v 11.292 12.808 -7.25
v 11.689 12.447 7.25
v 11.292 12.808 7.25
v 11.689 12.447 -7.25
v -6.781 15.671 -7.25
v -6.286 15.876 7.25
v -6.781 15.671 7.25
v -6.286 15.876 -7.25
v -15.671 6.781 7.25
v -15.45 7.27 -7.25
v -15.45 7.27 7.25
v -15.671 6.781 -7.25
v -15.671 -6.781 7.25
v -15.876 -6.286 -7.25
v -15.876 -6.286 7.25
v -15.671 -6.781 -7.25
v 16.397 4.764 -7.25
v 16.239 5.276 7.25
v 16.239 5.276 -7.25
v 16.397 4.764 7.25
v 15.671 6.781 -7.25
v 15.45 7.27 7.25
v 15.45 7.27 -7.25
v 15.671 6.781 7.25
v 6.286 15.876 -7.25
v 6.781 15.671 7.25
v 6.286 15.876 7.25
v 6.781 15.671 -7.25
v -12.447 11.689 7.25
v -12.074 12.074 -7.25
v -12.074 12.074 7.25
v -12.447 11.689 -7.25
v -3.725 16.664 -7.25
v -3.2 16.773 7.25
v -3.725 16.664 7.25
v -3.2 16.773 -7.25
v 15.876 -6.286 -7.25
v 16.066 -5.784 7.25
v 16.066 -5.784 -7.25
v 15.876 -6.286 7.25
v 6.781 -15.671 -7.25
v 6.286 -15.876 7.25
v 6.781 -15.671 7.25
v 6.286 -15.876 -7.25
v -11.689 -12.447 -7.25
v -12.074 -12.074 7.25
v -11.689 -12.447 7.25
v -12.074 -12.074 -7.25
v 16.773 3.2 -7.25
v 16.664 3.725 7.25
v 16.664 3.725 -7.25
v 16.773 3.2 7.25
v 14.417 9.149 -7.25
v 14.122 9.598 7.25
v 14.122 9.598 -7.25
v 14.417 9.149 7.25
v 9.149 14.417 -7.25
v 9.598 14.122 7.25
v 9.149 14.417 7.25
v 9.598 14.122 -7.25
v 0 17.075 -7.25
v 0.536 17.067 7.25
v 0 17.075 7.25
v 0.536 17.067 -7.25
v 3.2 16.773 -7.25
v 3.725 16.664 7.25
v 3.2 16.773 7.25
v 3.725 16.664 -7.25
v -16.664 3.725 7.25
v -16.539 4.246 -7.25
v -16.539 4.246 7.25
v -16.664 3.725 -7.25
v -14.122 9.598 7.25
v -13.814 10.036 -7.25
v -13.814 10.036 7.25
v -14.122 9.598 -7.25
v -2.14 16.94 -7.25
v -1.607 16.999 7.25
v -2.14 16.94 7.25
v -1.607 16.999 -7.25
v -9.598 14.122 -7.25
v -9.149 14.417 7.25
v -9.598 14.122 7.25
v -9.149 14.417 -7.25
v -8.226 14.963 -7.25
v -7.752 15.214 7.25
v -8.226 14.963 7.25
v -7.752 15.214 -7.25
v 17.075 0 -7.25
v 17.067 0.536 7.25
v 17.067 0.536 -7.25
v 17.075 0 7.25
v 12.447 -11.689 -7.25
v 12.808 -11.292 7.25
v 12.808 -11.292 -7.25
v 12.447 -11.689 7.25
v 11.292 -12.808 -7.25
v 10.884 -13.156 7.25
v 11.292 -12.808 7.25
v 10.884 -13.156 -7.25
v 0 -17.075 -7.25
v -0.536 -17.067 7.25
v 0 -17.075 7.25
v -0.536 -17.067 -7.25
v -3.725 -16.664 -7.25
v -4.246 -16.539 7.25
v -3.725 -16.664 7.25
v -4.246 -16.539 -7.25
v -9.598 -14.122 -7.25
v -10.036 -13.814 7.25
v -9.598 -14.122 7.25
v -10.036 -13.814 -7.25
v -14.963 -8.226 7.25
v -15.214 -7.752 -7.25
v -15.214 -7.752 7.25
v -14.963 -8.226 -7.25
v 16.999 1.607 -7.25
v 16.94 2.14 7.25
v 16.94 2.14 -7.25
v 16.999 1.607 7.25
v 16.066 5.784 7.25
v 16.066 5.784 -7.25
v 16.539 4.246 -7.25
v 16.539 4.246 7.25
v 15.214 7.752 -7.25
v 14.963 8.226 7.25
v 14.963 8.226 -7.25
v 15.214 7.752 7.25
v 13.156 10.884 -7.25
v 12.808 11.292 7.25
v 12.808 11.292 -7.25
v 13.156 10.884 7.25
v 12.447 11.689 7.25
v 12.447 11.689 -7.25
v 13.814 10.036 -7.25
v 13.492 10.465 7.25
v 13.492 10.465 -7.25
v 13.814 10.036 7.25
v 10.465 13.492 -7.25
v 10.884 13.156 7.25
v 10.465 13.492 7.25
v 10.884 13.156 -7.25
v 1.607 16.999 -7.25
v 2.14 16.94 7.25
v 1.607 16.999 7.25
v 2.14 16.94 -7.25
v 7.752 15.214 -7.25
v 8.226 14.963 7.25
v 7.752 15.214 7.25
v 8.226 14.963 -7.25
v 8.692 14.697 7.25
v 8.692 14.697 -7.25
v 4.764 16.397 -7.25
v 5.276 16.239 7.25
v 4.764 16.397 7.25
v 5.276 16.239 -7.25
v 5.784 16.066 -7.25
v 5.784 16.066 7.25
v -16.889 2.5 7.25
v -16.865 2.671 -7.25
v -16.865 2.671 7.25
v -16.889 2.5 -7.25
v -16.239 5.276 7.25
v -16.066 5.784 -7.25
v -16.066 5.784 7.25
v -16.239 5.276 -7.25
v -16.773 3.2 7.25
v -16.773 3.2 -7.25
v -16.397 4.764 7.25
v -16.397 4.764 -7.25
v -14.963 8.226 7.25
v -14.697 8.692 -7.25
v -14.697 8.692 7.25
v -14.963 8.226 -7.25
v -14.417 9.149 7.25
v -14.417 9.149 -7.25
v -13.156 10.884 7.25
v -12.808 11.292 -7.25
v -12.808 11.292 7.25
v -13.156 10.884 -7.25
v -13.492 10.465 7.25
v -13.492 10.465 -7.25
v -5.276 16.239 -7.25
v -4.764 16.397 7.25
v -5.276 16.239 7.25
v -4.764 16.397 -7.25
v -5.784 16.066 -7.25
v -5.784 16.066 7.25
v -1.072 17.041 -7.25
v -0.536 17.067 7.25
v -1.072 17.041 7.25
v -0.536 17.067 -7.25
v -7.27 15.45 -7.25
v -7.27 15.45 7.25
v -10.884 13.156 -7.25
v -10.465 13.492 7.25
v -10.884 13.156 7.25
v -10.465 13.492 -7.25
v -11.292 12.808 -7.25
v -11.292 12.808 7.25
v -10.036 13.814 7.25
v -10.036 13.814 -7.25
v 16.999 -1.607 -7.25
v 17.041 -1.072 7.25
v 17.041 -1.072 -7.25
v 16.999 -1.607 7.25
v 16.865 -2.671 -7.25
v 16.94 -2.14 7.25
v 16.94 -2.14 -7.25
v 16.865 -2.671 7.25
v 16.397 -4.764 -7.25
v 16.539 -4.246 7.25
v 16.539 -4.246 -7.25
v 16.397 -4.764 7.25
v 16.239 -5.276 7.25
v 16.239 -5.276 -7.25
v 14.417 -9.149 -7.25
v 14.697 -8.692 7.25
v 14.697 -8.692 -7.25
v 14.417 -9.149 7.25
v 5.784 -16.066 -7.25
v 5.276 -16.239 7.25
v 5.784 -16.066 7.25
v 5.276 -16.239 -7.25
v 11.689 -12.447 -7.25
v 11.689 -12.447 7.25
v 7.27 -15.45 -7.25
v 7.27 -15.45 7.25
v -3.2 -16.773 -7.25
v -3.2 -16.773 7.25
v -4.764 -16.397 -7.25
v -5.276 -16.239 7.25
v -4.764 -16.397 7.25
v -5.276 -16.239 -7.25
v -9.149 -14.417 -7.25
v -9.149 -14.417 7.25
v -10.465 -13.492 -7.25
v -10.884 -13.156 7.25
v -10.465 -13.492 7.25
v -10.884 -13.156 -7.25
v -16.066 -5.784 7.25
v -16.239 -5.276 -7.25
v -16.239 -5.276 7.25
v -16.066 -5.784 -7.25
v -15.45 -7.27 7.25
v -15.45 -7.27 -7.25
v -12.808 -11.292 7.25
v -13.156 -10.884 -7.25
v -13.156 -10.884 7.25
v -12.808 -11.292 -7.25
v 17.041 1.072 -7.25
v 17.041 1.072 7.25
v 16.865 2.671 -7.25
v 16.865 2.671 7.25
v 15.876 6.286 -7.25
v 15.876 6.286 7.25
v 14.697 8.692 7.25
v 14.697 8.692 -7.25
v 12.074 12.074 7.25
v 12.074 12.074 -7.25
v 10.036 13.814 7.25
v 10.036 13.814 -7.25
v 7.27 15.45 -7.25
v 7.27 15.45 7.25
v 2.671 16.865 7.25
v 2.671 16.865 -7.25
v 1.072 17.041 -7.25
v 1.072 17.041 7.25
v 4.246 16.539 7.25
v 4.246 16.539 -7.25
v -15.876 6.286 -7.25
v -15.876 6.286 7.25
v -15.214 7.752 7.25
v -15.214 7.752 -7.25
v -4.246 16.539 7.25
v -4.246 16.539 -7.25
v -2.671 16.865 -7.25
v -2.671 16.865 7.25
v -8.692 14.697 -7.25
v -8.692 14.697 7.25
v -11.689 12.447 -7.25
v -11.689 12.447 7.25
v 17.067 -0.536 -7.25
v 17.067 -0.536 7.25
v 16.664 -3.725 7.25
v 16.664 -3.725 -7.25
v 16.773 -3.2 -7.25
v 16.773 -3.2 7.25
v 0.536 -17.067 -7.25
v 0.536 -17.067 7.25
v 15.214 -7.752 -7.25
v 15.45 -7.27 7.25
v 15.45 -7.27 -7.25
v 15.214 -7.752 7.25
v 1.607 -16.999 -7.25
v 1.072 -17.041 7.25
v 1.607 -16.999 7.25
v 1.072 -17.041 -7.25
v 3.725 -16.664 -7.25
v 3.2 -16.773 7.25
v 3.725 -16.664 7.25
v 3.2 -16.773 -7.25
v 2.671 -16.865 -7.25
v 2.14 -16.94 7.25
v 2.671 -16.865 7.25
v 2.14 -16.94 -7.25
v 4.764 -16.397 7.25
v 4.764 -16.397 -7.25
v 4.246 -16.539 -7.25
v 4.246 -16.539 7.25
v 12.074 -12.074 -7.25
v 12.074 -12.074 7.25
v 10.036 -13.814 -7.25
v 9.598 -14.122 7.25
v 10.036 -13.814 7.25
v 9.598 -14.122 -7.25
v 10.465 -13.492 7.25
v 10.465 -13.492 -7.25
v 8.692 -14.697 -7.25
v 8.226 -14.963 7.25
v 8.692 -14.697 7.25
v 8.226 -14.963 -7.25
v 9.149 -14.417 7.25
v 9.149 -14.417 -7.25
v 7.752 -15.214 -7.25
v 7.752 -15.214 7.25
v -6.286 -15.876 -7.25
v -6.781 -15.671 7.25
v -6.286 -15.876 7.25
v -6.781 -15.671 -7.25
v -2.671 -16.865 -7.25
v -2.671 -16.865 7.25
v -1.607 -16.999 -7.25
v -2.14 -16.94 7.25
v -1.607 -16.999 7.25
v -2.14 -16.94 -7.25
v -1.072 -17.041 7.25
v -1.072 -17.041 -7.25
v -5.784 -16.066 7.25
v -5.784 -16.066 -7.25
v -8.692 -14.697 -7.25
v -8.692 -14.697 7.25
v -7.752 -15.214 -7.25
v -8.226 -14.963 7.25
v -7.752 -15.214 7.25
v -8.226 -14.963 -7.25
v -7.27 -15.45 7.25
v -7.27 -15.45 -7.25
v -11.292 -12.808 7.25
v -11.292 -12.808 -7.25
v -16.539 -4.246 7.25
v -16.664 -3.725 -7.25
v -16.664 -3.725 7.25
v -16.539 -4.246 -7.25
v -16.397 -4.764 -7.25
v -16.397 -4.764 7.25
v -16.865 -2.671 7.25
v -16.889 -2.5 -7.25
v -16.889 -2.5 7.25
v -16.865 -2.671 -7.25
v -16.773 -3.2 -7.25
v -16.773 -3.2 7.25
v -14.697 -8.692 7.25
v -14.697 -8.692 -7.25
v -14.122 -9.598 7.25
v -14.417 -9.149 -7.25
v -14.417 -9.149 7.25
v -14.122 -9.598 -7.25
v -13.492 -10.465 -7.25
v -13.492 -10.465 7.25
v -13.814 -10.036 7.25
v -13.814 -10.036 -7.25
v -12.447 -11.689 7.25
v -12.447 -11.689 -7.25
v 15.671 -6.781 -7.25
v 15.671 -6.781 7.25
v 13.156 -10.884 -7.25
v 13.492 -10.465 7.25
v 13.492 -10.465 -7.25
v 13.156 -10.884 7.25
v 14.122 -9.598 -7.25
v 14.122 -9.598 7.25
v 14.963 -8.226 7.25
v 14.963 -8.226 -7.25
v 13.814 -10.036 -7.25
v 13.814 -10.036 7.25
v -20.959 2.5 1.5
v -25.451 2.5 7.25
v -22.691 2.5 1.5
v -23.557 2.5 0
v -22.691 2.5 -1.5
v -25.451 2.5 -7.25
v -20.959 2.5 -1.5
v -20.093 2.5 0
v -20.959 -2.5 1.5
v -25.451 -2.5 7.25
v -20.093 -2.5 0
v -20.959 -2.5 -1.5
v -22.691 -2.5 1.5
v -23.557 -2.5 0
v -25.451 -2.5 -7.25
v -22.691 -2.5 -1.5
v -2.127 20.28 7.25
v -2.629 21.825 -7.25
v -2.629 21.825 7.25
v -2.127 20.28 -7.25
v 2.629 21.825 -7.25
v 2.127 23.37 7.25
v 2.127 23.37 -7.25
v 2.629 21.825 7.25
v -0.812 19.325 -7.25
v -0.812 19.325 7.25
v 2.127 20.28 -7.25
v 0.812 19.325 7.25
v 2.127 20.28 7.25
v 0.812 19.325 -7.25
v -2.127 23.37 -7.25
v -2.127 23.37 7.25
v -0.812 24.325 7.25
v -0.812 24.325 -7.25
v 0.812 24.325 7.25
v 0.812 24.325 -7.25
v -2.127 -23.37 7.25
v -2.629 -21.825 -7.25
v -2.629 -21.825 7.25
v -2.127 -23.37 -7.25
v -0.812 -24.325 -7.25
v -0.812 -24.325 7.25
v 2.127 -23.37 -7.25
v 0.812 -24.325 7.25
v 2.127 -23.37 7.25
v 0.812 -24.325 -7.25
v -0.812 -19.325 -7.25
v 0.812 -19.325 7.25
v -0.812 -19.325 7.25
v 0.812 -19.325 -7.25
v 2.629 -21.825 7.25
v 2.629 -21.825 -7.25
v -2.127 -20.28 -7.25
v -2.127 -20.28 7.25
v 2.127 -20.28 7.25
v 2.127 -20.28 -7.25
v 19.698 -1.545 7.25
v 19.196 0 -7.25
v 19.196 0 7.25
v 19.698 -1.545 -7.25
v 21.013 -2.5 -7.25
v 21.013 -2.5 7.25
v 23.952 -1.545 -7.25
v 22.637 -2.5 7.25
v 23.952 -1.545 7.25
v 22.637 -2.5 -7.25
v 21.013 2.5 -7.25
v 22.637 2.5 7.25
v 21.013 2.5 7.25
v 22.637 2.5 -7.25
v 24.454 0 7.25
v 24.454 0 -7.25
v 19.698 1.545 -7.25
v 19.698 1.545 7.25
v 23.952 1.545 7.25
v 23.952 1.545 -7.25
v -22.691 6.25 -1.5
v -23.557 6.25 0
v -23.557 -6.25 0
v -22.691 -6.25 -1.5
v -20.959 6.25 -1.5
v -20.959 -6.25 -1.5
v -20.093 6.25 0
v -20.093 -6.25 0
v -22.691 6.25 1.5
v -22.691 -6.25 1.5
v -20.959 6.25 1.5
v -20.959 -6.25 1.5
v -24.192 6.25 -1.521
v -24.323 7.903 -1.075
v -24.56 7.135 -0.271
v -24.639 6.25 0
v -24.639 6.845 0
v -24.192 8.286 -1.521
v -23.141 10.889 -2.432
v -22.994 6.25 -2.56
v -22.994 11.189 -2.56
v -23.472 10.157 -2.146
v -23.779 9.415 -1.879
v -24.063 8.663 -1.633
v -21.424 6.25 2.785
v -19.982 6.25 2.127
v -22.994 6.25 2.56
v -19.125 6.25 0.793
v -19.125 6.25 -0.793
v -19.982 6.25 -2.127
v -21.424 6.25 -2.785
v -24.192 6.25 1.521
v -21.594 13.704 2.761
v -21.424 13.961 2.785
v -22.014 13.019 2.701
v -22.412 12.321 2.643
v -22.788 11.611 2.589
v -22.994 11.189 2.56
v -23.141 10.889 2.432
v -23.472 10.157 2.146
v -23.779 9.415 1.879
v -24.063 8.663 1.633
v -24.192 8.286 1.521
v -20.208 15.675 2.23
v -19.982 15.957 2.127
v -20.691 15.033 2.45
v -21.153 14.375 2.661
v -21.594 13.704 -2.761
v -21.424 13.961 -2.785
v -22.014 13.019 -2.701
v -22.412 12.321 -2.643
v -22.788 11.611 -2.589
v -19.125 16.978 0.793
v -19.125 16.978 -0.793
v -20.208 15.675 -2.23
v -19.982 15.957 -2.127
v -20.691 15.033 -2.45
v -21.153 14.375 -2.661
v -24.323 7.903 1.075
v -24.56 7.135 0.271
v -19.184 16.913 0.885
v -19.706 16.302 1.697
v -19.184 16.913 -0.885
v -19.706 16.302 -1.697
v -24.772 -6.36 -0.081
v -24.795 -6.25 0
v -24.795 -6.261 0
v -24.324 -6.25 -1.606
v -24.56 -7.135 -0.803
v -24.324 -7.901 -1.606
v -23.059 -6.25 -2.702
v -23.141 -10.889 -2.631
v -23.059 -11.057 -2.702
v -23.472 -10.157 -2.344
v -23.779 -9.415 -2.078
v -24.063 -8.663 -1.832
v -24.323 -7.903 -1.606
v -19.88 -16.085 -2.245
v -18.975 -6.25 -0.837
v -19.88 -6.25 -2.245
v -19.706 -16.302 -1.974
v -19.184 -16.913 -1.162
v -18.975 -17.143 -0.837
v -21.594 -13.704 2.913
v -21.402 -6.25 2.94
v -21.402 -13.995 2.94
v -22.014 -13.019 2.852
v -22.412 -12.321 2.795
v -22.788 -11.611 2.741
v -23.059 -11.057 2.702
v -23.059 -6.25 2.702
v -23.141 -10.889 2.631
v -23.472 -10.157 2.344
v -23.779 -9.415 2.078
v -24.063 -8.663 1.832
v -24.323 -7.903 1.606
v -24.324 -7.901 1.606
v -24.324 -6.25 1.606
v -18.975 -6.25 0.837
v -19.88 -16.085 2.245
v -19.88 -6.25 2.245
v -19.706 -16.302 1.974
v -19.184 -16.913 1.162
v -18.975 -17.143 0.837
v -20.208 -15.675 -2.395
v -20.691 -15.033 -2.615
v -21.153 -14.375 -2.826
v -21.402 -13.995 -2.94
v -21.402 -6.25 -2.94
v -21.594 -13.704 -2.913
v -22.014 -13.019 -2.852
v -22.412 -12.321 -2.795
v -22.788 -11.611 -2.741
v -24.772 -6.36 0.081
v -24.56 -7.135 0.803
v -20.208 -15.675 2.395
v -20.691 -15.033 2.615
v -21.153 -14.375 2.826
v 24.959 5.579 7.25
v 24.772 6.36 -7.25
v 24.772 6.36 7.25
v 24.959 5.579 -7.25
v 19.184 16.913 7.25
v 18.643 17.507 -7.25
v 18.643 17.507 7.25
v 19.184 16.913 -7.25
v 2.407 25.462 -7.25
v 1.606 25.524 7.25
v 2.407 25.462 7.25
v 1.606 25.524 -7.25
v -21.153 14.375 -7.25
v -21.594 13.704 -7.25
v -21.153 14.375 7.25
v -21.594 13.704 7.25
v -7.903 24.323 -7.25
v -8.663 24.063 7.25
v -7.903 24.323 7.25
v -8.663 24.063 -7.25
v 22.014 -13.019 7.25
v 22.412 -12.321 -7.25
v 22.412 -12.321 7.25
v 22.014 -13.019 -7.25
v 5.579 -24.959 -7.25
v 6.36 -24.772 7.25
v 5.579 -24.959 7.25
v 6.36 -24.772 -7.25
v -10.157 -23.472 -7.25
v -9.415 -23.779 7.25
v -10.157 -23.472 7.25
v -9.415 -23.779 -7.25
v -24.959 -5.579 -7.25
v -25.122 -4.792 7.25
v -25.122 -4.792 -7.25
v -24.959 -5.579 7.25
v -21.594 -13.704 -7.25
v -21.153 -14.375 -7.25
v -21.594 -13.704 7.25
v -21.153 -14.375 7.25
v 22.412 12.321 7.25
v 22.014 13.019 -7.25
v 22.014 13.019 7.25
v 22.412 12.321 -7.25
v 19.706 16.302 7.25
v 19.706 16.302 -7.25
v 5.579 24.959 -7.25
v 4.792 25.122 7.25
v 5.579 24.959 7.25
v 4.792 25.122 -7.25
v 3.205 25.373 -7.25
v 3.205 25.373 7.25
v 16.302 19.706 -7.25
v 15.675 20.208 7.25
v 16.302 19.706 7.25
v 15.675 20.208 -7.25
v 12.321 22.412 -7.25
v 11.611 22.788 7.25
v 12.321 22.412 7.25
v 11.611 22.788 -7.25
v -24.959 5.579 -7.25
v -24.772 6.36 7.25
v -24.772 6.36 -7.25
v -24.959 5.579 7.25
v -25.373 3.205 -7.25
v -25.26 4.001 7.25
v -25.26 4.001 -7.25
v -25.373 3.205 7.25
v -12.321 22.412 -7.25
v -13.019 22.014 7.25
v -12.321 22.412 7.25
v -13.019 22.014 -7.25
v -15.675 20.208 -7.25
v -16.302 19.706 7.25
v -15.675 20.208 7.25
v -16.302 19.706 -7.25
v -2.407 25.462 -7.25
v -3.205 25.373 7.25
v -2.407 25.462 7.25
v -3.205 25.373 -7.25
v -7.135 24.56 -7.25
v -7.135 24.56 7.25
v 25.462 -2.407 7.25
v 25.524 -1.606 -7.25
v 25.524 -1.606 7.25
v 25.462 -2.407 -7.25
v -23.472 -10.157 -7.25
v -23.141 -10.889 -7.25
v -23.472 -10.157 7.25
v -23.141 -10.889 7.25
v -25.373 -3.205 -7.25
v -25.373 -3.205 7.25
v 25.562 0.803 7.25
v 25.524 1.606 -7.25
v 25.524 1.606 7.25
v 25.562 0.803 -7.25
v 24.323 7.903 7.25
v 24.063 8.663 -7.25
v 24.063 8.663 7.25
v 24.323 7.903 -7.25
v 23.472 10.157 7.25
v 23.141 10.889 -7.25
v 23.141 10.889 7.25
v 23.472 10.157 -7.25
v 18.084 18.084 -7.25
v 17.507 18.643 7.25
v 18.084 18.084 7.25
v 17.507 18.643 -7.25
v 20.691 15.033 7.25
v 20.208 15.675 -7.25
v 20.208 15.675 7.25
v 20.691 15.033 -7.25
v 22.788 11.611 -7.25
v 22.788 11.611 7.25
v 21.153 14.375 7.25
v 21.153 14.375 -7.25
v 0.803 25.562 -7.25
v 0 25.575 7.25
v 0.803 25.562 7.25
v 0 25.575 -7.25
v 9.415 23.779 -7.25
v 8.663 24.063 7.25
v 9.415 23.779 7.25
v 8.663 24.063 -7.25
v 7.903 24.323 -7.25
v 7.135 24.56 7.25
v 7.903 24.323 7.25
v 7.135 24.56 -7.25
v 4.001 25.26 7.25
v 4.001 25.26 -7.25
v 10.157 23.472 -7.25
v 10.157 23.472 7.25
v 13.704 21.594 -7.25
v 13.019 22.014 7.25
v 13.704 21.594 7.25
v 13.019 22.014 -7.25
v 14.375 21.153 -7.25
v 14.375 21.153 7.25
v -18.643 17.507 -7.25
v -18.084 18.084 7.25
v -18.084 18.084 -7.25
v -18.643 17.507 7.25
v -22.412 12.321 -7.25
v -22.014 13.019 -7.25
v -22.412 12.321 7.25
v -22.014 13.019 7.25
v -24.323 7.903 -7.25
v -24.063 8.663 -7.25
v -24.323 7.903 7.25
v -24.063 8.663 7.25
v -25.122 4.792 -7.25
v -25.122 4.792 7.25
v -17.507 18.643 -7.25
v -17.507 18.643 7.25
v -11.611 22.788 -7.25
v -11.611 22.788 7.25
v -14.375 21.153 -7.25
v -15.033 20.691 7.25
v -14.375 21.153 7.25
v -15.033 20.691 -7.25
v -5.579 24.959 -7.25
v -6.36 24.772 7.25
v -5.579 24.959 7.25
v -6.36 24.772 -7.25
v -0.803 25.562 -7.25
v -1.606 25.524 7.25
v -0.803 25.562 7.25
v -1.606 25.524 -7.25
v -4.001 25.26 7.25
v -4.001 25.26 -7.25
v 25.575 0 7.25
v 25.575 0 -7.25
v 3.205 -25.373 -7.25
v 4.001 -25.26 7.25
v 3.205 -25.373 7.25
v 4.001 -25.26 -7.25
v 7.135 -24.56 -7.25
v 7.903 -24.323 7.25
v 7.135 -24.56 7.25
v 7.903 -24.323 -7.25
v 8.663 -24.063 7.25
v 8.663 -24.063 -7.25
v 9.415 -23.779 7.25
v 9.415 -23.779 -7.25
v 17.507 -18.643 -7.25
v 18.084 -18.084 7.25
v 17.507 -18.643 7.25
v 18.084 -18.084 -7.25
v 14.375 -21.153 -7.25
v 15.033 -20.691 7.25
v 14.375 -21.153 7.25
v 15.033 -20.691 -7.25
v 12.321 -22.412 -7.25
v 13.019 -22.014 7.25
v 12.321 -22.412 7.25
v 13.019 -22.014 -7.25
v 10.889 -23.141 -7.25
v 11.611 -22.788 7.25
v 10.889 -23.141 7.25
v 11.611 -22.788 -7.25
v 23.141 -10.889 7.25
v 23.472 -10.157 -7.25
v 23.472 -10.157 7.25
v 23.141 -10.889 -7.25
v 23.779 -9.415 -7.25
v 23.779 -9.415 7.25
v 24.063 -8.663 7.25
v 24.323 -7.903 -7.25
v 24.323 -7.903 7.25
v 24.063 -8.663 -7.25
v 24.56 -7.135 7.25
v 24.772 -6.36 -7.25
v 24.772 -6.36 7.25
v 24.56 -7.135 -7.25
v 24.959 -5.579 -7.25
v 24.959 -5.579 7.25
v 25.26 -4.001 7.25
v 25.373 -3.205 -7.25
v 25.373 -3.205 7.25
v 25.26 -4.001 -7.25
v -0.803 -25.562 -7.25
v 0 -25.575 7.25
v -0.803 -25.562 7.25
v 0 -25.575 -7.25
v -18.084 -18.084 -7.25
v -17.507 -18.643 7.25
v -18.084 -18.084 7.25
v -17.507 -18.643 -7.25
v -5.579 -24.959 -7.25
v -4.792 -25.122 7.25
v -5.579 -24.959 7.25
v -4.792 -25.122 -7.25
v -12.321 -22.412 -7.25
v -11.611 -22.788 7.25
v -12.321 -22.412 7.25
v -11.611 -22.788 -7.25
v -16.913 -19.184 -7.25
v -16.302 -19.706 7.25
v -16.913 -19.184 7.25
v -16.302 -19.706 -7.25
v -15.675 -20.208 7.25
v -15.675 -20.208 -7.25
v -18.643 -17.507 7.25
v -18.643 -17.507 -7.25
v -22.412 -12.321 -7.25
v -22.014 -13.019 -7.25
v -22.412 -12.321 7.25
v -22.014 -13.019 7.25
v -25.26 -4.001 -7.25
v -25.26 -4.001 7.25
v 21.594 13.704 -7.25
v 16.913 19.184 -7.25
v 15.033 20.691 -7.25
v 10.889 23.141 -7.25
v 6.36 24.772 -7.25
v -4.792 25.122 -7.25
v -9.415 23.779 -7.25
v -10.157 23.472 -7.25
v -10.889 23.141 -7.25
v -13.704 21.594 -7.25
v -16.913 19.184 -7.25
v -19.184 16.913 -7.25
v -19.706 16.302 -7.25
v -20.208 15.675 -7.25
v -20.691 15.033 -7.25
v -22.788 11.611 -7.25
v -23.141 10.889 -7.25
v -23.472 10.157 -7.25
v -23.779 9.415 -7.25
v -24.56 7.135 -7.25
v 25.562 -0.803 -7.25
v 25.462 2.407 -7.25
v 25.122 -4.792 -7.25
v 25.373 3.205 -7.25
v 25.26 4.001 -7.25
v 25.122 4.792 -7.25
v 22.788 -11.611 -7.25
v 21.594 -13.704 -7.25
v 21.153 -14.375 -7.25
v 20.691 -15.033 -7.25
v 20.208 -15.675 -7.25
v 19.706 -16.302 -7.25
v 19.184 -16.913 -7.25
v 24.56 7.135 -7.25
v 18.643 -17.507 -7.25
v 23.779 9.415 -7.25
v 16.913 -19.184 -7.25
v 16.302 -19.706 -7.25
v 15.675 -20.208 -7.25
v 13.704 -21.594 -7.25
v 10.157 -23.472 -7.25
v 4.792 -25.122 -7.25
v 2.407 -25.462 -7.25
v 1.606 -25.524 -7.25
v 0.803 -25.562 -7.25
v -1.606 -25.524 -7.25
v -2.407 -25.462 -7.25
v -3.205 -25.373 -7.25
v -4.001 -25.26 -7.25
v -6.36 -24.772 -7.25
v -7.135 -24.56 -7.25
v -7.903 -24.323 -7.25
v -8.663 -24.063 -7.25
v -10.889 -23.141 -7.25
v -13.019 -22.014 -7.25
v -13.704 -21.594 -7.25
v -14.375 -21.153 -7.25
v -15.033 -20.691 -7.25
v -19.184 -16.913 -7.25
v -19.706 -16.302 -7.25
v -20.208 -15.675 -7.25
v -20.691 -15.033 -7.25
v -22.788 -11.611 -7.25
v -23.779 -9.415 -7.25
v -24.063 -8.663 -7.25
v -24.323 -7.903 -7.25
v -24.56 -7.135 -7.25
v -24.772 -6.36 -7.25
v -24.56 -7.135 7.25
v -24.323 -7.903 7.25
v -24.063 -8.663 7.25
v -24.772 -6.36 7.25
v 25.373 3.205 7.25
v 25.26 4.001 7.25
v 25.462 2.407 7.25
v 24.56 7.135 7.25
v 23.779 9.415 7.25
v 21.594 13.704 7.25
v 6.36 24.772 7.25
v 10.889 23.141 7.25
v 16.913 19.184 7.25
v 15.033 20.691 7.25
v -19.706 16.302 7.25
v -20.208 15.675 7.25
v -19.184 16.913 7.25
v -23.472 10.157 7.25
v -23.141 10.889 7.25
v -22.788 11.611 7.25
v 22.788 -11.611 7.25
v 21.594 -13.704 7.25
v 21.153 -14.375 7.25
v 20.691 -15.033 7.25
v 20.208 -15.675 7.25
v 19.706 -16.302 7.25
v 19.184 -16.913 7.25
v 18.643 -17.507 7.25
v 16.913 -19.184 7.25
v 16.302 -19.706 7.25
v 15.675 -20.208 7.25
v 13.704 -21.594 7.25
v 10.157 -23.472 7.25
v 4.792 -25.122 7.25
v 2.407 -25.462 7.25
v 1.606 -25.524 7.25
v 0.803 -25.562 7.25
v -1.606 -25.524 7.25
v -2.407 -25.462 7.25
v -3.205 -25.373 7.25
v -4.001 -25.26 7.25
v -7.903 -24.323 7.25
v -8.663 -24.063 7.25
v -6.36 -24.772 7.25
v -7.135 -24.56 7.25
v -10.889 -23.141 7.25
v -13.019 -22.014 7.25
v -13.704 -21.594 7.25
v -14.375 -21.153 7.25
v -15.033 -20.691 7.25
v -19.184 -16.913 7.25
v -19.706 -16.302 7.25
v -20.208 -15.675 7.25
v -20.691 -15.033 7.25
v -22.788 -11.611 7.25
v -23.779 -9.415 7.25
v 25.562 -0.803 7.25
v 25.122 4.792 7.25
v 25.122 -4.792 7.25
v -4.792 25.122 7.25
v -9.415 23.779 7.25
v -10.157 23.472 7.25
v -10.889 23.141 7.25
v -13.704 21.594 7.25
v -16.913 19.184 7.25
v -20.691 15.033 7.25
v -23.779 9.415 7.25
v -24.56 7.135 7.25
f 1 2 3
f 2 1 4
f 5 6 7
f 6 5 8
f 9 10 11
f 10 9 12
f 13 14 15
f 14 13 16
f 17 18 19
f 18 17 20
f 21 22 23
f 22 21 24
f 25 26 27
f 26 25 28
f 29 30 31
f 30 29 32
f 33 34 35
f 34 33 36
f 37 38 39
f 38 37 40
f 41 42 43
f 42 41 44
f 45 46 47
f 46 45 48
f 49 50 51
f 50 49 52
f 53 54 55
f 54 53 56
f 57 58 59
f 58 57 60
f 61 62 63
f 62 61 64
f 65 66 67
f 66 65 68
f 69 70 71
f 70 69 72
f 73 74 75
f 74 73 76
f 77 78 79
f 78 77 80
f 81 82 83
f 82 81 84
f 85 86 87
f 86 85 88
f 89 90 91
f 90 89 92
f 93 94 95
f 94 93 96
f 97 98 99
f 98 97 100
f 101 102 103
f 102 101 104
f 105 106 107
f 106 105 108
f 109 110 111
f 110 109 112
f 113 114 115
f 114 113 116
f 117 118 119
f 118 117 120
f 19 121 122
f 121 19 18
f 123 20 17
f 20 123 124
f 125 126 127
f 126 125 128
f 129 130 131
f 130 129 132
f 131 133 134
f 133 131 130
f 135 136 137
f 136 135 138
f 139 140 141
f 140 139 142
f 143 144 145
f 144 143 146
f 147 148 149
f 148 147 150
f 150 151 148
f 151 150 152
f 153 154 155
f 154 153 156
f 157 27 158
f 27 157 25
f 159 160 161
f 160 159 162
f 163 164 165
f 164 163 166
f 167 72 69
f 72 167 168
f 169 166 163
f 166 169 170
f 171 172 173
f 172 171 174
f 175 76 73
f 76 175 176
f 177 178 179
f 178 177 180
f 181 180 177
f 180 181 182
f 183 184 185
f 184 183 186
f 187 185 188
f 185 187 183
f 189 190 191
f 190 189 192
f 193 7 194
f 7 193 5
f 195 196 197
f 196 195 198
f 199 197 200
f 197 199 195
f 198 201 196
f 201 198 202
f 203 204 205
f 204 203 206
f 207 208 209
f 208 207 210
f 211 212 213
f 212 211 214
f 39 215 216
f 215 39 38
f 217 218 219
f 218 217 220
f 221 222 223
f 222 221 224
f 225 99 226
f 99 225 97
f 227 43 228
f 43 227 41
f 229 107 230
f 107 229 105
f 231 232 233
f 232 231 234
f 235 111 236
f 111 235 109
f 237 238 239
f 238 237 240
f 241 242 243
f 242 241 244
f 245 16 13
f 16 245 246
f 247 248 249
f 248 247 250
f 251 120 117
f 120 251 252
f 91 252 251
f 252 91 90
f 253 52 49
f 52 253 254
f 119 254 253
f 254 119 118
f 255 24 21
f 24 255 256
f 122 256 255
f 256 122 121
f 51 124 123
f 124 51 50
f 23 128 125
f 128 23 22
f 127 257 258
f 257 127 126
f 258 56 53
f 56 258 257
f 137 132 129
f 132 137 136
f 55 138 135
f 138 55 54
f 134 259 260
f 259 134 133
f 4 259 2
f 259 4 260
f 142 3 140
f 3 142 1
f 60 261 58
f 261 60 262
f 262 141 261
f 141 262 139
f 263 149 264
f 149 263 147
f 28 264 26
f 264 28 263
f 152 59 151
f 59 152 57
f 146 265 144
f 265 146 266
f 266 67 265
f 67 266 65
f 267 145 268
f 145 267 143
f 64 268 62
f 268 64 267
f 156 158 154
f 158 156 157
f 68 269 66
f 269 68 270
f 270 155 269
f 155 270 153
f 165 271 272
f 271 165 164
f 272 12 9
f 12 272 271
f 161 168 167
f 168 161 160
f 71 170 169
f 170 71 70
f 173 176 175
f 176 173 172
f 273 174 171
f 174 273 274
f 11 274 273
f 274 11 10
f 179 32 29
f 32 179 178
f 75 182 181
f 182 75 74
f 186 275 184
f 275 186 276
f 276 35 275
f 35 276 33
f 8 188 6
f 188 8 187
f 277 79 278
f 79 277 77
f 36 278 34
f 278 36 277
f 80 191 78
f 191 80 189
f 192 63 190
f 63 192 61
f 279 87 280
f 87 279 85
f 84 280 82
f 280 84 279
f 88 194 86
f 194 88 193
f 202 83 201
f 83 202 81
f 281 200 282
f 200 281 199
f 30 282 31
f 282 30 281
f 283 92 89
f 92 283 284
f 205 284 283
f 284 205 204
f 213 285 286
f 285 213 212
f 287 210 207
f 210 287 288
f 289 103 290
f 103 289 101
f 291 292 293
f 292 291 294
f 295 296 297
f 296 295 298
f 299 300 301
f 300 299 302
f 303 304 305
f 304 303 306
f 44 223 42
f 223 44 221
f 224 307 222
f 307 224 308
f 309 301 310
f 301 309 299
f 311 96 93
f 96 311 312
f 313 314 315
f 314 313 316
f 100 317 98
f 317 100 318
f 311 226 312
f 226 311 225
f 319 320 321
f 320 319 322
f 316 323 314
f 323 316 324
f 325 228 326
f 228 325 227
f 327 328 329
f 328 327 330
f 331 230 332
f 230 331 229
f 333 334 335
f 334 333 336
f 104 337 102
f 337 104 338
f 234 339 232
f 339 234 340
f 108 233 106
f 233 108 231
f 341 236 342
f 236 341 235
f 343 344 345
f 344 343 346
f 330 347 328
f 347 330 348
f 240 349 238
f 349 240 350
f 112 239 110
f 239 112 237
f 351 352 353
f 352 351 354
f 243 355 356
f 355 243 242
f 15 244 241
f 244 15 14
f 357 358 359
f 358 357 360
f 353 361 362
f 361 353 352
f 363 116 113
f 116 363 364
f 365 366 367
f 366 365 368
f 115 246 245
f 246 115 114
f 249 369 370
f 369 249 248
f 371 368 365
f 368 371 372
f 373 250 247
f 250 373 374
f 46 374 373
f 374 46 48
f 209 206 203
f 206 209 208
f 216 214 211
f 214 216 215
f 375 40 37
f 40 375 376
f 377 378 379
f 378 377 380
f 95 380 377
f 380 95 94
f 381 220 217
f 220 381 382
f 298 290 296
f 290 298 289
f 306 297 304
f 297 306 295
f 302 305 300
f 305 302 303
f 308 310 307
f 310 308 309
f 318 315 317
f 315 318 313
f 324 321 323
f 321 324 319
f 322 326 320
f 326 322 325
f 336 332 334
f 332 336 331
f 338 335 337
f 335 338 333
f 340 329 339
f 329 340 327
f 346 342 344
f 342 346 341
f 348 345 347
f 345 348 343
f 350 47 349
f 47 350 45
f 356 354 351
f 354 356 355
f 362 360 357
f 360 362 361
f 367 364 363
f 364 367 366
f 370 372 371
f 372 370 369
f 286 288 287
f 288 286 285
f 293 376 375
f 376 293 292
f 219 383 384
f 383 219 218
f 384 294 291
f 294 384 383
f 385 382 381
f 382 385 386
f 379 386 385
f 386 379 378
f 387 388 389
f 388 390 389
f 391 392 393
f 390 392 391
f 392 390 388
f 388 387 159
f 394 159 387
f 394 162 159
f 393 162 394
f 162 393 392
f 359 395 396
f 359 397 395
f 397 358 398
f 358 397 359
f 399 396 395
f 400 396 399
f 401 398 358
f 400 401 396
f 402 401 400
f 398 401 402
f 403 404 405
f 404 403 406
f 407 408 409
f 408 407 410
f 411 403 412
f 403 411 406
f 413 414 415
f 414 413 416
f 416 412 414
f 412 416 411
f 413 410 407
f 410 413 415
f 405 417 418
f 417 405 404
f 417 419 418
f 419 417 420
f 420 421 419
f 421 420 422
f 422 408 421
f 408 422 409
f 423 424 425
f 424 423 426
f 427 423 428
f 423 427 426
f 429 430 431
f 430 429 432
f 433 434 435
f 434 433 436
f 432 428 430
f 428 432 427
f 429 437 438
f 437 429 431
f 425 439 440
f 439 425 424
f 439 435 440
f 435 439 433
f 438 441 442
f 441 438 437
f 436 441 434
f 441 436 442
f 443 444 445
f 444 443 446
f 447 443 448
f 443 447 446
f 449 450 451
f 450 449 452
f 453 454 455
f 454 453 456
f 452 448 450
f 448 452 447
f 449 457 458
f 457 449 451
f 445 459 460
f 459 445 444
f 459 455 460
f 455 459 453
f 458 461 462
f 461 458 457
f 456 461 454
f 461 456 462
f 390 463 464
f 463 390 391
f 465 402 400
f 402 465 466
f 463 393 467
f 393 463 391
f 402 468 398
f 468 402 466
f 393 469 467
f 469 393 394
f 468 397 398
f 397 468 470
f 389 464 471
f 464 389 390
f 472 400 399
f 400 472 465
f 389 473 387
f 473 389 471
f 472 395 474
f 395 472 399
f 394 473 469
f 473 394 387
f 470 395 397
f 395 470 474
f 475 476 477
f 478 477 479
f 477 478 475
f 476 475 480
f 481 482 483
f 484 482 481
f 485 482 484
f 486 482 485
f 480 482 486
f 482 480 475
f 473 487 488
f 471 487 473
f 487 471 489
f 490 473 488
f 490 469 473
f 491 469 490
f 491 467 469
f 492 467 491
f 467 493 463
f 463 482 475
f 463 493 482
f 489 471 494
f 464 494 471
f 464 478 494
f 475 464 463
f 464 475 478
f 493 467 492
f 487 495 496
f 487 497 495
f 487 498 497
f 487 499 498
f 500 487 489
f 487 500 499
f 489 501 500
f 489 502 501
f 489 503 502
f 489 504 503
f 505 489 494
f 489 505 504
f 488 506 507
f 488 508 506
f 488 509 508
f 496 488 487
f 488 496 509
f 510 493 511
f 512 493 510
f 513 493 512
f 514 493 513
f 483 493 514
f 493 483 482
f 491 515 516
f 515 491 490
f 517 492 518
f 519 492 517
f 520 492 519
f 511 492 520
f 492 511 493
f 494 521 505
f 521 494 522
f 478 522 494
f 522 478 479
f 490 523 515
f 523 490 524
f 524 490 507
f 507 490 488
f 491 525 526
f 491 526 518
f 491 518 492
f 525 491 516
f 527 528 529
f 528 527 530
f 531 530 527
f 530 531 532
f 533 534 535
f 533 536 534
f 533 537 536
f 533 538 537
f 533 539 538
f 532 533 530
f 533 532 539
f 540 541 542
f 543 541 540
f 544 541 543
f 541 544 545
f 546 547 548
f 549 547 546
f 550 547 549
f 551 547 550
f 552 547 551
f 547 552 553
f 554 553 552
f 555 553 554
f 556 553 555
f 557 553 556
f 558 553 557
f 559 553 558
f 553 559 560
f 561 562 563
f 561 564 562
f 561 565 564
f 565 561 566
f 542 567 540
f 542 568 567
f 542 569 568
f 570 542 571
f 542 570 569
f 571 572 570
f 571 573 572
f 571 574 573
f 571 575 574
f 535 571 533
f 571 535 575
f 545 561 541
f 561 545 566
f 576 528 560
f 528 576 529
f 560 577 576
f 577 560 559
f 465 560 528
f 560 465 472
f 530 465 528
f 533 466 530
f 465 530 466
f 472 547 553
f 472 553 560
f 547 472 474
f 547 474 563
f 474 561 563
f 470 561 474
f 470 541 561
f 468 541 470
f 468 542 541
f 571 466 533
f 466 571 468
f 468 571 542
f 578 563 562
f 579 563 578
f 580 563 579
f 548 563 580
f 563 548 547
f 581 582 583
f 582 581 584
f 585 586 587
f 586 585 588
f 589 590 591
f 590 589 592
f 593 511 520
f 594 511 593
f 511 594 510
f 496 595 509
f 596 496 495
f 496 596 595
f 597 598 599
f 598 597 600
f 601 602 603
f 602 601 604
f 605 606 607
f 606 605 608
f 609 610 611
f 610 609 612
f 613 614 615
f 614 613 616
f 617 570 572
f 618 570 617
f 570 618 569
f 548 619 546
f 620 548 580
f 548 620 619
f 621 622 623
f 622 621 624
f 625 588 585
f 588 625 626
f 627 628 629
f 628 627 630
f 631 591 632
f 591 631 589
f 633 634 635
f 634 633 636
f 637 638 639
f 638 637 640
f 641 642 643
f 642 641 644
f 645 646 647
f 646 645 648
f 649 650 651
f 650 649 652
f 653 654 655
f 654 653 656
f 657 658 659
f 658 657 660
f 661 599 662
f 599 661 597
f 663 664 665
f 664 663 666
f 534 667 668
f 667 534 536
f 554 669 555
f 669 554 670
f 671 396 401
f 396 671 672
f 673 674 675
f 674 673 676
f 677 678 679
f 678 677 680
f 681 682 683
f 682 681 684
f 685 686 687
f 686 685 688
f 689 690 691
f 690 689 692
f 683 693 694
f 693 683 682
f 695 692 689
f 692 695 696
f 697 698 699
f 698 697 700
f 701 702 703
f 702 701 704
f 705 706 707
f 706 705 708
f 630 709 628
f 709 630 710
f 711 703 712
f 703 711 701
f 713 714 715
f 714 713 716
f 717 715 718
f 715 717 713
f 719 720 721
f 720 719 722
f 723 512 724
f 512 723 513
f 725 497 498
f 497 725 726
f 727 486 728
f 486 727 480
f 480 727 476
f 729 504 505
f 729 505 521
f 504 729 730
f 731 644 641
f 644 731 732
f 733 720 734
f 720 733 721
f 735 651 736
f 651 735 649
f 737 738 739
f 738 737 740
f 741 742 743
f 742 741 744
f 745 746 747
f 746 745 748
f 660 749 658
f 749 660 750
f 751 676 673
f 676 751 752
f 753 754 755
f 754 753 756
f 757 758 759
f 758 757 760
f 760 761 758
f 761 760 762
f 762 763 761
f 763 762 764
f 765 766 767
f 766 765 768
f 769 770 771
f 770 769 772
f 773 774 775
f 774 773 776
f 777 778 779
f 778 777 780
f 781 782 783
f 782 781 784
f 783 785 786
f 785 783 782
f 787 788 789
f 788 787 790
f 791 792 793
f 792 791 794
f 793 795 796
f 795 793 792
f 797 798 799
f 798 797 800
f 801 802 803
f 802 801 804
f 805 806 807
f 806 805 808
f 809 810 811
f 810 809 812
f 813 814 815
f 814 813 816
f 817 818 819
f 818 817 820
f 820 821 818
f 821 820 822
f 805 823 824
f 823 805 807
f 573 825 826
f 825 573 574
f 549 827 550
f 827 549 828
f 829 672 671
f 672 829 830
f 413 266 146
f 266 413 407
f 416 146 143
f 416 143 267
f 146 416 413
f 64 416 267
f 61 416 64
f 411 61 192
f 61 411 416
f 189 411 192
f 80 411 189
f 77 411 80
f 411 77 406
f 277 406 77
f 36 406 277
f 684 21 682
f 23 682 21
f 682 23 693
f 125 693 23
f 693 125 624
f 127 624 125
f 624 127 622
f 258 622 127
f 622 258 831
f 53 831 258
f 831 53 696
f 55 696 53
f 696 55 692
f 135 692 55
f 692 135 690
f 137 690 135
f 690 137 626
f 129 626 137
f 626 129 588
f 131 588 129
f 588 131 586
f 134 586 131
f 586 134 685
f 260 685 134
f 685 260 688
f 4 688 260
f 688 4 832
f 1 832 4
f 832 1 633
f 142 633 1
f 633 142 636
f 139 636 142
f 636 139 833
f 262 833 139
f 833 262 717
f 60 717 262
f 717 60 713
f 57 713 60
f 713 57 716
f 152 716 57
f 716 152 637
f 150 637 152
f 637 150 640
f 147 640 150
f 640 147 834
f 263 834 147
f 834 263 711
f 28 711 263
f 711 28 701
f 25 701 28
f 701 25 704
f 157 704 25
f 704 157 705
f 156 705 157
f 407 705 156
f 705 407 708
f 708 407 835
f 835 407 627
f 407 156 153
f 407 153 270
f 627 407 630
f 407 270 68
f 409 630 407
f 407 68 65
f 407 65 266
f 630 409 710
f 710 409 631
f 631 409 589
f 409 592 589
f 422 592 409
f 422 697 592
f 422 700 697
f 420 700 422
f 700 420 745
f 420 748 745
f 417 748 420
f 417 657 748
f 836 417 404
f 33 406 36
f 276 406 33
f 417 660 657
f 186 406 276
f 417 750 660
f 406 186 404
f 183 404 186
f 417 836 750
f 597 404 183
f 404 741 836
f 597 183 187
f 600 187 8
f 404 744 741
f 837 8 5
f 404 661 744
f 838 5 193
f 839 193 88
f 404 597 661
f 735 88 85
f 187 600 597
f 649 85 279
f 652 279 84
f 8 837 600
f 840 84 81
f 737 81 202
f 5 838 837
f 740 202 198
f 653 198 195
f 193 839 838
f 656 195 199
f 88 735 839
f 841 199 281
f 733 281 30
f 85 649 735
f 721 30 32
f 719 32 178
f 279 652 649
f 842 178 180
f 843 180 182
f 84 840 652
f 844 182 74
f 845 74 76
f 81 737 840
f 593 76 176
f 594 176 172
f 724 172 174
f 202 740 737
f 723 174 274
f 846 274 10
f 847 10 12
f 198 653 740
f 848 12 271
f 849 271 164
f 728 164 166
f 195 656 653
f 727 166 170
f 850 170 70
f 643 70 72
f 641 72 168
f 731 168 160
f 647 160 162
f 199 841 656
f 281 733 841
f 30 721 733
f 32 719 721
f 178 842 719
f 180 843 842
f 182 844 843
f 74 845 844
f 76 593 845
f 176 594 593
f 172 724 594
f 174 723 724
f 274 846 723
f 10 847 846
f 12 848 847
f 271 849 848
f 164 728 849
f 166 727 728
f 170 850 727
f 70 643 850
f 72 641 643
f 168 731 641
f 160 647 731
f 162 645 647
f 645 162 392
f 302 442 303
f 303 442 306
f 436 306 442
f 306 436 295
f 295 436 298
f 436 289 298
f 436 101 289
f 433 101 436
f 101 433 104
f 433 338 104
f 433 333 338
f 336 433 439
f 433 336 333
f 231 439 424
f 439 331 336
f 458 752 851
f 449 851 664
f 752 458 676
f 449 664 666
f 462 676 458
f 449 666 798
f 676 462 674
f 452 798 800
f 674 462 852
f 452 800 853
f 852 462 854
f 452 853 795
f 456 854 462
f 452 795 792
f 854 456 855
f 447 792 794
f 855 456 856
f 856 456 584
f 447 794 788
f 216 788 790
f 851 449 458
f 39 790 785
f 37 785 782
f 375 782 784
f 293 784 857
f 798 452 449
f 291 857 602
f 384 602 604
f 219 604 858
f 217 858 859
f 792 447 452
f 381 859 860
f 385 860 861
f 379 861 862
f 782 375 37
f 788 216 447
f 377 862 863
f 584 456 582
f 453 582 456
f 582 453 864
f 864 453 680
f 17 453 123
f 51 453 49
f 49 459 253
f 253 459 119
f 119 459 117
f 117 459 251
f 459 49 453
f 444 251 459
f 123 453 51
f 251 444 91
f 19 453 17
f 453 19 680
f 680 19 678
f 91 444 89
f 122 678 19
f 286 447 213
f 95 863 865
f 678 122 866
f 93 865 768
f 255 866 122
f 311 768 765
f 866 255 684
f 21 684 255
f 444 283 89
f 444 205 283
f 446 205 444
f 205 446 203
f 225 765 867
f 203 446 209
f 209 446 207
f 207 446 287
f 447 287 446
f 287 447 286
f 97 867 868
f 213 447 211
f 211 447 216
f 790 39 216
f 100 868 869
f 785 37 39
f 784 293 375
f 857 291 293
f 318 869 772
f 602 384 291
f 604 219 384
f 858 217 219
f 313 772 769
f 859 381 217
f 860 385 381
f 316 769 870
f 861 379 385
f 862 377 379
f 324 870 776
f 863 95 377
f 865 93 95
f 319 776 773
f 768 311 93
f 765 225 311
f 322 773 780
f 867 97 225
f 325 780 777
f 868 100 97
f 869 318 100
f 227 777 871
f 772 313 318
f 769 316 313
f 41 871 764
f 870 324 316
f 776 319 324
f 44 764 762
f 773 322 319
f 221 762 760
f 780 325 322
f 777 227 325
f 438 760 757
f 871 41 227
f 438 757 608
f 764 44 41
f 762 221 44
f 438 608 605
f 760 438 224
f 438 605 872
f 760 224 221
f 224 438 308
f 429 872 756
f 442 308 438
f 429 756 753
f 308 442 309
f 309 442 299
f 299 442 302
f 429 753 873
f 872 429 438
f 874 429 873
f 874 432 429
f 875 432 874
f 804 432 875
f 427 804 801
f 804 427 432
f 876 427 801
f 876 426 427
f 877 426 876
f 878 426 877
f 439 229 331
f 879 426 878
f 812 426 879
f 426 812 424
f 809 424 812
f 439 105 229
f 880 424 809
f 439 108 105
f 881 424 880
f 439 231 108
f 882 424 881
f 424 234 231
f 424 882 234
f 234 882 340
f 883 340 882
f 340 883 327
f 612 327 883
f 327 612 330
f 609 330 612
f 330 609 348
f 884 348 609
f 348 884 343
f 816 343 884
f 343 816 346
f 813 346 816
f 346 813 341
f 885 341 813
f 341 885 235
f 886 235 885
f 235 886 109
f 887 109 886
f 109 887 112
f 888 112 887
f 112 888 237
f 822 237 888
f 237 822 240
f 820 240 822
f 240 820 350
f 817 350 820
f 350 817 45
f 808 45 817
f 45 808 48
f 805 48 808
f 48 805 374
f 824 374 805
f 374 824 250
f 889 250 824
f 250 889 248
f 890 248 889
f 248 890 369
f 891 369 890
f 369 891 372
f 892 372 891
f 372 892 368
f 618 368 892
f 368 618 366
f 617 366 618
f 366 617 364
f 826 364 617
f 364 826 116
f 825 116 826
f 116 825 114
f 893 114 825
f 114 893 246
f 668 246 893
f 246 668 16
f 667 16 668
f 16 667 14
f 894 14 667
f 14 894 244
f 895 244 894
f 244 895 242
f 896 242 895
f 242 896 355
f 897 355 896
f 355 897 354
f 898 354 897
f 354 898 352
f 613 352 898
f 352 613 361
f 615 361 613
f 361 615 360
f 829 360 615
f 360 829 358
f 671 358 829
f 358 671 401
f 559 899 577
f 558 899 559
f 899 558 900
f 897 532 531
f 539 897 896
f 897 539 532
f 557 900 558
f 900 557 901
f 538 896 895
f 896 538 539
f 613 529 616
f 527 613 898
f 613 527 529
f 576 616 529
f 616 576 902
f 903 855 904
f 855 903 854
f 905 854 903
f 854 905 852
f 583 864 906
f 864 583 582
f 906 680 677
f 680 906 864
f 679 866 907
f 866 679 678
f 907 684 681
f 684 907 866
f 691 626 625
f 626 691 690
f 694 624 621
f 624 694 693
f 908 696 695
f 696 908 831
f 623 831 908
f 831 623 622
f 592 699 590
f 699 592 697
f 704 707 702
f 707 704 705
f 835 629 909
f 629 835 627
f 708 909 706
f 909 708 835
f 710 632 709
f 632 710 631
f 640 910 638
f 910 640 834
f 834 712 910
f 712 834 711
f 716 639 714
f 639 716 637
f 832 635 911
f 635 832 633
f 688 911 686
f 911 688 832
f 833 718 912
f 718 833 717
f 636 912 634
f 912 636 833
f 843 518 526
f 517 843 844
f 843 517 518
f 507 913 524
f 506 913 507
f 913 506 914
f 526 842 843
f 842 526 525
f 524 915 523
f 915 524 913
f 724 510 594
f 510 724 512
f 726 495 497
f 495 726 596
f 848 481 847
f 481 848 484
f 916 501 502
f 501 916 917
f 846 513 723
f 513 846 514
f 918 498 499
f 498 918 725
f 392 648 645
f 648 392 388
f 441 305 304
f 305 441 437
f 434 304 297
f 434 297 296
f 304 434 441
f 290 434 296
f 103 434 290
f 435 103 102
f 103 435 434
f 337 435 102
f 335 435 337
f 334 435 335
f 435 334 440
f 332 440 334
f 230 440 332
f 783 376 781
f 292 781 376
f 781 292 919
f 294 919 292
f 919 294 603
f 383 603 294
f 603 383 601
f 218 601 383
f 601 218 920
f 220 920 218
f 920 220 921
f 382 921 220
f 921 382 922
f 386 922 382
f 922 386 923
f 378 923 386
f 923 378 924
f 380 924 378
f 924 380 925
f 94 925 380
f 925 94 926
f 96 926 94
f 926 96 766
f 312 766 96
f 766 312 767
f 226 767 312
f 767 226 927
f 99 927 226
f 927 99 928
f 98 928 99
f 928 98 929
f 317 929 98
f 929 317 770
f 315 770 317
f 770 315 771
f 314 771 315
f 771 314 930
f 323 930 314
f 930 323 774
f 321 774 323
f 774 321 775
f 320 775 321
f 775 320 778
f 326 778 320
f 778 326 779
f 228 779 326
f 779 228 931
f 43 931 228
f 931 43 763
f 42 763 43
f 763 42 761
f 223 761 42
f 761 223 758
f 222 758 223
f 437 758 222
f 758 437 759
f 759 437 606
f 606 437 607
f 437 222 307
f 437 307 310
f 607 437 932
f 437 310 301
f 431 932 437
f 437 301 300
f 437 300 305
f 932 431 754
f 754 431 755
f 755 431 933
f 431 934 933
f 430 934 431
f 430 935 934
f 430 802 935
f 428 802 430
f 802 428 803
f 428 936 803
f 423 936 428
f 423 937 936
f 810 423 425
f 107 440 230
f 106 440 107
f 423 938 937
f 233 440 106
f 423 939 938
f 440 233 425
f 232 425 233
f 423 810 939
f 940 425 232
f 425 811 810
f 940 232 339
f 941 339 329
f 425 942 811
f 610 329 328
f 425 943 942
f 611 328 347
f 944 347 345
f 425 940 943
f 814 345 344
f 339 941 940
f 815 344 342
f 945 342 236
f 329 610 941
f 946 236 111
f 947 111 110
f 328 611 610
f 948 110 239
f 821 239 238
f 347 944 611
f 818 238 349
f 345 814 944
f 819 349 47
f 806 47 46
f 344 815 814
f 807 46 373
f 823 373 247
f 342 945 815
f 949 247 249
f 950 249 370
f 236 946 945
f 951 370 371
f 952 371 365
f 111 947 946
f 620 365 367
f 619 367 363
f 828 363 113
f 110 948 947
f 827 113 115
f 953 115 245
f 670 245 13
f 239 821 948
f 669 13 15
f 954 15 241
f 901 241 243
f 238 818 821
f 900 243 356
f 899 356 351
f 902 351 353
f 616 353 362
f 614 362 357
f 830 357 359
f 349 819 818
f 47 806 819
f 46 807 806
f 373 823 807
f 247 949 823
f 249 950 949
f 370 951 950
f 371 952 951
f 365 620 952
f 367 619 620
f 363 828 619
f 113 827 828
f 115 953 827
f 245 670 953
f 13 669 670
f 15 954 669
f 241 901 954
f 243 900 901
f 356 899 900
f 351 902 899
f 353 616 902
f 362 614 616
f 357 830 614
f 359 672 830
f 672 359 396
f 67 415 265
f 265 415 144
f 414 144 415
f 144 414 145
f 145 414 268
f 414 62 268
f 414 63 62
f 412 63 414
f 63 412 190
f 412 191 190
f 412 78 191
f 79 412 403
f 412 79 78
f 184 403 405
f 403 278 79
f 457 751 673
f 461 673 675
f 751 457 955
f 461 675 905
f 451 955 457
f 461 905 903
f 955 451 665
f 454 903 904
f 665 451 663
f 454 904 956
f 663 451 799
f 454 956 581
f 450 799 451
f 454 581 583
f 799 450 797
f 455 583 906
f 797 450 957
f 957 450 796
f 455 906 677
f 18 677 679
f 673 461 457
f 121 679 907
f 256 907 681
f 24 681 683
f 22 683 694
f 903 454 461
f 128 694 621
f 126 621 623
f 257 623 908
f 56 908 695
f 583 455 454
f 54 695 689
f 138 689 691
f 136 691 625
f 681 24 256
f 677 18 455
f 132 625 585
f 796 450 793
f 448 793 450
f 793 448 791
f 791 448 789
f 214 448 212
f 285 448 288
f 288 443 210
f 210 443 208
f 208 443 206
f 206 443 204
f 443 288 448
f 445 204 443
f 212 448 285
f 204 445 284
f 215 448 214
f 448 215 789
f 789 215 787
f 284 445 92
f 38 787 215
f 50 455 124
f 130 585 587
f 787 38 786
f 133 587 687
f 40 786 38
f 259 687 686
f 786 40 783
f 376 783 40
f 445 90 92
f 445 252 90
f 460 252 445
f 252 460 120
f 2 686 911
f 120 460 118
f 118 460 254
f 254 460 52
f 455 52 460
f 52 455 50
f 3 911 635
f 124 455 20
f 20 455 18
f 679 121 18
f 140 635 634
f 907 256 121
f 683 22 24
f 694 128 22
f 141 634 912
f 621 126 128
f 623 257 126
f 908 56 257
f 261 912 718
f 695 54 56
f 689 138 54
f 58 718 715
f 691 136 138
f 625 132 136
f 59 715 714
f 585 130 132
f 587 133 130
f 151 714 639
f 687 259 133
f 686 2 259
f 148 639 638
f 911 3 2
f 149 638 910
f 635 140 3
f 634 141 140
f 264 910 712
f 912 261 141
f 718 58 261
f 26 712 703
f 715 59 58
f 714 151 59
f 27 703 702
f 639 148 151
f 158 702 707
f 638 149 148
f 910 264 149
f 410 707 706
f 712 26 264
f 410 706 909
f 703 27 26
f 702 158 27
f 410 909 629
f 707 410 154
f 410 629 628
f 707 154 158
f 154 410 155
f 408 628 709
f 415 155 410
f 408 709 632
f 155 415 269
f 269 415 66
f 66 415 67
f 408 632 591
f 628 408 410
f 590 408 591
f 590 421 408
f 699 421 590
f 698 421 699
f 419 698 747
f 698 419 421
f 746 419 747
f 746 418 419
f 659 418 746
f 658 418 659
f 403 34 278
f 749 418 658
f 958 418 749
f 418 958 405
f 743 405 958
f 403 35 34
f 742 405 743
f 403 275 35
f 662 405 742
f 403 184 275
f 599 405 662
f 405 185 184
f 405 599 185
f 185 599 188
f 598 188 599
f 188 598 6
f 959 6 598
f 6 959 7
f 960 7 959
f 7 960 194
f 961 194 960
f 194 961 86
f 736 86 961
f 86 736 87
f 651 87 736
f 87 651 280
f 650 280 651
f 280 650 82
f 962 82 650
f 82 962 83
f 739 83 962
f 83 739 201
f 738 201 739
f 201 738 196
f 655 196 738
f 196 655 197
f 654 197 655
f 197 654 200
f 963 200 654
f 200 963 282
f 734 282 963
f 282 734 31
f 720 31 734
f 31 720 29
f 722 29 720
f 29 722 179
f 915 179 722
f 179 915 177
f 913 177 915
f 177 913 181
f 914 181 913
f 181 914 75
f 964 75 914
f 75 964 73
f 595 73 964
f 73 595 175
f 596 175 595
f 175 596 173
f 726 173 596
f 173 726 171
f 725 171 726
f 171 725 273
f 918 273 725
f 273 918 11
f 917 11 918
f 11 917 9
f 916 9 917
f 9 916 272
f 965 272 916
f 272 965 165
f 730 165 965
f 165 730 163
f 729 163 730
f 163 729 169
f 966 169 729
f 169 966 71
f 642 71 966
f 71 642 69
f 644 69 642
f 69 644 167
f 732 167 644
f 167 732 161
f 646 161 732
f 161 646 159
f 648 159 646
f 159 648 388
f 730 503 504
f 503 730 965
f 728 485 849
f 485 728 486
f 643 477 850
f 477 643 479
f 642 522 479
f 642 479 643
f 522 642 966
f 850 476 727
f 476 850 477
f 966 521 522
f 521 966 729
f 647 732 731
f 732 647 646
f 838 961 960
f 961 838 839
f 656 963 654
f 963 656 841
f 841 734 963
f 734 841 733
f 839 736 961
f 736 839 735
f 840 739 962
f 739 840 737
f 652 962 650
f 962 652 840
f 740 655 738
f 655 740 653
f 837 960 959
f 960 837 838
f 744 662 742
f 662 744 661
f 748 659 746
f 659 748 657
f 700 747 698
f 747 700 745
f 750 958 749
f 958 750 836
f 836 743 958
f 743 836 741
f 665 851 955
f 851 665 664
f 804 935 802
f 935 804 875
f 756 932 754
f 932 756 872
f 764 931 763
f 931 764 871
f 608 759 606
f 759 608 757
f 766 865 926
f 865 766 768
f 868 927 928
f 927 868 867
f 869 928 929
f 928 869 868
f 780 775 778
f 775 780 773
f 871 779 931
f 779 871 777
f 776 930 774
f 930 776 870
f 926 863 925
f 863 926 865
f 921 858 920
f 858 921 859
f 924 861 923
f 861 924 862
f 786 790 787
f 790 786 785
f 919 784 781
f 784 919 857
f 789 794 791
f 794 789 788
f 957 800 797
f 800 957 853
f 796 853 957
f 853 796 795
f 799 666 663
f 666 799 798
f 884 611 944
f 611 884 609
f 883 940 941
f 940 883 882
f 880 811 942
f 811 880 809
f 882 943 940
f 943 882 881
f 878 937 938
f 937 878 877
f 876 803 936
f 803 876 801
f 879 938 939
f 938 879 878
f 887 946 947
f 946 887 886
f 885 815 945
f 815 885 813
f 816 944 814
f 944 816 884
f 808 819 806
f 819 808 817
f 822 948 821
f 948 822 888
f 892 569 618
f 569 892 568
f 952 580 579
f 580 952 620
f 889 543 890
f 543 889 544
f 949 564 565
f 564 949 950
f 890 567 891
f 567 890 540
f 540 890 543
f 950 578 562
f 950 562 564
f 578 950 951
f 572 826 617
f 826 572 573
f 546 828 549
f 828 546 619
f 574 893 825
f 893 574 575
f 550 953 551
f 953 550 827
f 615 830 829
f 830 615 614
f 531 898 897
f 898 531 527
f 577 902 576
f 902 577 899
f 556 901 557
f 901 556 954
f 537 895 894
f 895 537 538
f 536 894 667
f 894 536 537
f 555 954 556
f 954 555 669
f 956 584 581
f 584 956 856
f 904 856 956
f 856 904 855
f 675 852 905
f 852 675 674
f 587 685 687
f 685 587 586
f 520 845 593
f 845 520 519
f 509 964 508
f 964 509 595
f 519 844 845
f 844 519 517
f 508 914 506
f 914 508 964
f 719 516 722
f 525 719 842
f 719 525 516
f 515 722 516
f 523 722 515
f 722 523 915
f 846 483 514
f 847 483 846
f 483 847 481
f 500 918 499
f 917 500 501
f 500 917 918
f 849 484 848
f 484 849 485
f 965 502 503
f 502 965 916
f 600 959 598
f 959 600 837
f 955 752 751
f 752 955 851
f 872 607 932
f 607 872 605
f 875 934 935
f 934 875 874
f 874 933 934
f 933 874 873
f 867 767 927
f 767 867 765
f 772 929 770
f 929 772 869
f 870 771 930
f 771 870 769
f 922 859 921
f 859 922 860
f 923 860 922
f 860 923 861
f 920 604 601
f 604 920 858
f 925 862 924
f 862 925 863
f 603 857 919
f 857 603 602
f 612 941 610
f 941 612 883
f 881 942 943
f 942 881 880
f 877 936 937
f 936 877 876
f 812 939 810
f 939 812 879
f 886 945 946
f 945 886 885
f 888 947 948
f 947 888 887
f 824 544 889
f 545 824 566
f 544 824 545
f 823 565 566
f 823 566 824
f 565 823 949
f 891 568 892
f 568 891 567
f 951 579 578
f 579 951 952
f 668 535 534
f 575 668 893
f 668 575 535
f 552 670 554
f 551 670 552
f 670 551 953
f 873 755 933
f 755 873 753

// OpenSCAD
//
// Drill press adapter for micro air grinder for use in 
// SMI drill press
// D. Rowntree 17Nov15
//
// Adapted for use as optical rotary encoder mount.
// JSR 14/01/2016


use <MCAD/polyholes.scad>;

// Configure

id=36.15;
od=id + 15.0;

clearance=1.0;
slot_w=5;
height=29;
fn=200;

mount_hole_d = 5.0;
collar_tension_d = 3.0;
collar_tension_nut_d = 5.40;
collar_tension_head_d = 5.70;

// render top level
body();

module body()
{
    difference(){
        bulk();
        bulk_remove();
        mount_holes();
        collar_tension();
    }
}

module bulk()
{
    cylinder(h=height/2, r=od/2, center = true, $fn=fn);
}

module bulk_remove()
{
    union(){
        cylinder(h=4+height/2, r=id/2-clearance, center=true, $fn=fn);
        translate([-od/4,0,0]) cube([2+od/2,slot_w,4+height/2], center=true);
    }
   
}
        
module mount_holes() 
{
    translate([0,(od + id)/4.0 ,-height/4.0 - 1.0]) polyhole(d = mount_hole_d, h = height/2.0 + 2.0);
    translate([0,-(od + id)/4.0 ,-height/4.0 - 1.0]) polyhole(d = mount_hole_d, h = height/2.0 + 2.0);
    translate([(od + id)/4.0, 0,-height/4.0 - 1.0]) polyhole(d = mount_hole_d, h = height/2.0 + 2.0);
}

module collar_tension()
{
    union () {
        rotate([90,0,0]) {
            translate([-(od + id)/4.0, 0, 0]) {
                translate([0, 0, -height/4.0 - 1.0]) polyhole(d = collar_tension_d, h = height/2.0 + 2.0);
                translate([0, 0, -3.0*height/4.0 - 1.0]) polyhole(d = collar_tension_nut_d, h = height/2.0 + 2.0);
                translate([0, 0, height/4.0 - 1.0]) polyhole(d = collar_tension_head_d, h = height/2.0 + 2.0);
            }
        }
    }
}
